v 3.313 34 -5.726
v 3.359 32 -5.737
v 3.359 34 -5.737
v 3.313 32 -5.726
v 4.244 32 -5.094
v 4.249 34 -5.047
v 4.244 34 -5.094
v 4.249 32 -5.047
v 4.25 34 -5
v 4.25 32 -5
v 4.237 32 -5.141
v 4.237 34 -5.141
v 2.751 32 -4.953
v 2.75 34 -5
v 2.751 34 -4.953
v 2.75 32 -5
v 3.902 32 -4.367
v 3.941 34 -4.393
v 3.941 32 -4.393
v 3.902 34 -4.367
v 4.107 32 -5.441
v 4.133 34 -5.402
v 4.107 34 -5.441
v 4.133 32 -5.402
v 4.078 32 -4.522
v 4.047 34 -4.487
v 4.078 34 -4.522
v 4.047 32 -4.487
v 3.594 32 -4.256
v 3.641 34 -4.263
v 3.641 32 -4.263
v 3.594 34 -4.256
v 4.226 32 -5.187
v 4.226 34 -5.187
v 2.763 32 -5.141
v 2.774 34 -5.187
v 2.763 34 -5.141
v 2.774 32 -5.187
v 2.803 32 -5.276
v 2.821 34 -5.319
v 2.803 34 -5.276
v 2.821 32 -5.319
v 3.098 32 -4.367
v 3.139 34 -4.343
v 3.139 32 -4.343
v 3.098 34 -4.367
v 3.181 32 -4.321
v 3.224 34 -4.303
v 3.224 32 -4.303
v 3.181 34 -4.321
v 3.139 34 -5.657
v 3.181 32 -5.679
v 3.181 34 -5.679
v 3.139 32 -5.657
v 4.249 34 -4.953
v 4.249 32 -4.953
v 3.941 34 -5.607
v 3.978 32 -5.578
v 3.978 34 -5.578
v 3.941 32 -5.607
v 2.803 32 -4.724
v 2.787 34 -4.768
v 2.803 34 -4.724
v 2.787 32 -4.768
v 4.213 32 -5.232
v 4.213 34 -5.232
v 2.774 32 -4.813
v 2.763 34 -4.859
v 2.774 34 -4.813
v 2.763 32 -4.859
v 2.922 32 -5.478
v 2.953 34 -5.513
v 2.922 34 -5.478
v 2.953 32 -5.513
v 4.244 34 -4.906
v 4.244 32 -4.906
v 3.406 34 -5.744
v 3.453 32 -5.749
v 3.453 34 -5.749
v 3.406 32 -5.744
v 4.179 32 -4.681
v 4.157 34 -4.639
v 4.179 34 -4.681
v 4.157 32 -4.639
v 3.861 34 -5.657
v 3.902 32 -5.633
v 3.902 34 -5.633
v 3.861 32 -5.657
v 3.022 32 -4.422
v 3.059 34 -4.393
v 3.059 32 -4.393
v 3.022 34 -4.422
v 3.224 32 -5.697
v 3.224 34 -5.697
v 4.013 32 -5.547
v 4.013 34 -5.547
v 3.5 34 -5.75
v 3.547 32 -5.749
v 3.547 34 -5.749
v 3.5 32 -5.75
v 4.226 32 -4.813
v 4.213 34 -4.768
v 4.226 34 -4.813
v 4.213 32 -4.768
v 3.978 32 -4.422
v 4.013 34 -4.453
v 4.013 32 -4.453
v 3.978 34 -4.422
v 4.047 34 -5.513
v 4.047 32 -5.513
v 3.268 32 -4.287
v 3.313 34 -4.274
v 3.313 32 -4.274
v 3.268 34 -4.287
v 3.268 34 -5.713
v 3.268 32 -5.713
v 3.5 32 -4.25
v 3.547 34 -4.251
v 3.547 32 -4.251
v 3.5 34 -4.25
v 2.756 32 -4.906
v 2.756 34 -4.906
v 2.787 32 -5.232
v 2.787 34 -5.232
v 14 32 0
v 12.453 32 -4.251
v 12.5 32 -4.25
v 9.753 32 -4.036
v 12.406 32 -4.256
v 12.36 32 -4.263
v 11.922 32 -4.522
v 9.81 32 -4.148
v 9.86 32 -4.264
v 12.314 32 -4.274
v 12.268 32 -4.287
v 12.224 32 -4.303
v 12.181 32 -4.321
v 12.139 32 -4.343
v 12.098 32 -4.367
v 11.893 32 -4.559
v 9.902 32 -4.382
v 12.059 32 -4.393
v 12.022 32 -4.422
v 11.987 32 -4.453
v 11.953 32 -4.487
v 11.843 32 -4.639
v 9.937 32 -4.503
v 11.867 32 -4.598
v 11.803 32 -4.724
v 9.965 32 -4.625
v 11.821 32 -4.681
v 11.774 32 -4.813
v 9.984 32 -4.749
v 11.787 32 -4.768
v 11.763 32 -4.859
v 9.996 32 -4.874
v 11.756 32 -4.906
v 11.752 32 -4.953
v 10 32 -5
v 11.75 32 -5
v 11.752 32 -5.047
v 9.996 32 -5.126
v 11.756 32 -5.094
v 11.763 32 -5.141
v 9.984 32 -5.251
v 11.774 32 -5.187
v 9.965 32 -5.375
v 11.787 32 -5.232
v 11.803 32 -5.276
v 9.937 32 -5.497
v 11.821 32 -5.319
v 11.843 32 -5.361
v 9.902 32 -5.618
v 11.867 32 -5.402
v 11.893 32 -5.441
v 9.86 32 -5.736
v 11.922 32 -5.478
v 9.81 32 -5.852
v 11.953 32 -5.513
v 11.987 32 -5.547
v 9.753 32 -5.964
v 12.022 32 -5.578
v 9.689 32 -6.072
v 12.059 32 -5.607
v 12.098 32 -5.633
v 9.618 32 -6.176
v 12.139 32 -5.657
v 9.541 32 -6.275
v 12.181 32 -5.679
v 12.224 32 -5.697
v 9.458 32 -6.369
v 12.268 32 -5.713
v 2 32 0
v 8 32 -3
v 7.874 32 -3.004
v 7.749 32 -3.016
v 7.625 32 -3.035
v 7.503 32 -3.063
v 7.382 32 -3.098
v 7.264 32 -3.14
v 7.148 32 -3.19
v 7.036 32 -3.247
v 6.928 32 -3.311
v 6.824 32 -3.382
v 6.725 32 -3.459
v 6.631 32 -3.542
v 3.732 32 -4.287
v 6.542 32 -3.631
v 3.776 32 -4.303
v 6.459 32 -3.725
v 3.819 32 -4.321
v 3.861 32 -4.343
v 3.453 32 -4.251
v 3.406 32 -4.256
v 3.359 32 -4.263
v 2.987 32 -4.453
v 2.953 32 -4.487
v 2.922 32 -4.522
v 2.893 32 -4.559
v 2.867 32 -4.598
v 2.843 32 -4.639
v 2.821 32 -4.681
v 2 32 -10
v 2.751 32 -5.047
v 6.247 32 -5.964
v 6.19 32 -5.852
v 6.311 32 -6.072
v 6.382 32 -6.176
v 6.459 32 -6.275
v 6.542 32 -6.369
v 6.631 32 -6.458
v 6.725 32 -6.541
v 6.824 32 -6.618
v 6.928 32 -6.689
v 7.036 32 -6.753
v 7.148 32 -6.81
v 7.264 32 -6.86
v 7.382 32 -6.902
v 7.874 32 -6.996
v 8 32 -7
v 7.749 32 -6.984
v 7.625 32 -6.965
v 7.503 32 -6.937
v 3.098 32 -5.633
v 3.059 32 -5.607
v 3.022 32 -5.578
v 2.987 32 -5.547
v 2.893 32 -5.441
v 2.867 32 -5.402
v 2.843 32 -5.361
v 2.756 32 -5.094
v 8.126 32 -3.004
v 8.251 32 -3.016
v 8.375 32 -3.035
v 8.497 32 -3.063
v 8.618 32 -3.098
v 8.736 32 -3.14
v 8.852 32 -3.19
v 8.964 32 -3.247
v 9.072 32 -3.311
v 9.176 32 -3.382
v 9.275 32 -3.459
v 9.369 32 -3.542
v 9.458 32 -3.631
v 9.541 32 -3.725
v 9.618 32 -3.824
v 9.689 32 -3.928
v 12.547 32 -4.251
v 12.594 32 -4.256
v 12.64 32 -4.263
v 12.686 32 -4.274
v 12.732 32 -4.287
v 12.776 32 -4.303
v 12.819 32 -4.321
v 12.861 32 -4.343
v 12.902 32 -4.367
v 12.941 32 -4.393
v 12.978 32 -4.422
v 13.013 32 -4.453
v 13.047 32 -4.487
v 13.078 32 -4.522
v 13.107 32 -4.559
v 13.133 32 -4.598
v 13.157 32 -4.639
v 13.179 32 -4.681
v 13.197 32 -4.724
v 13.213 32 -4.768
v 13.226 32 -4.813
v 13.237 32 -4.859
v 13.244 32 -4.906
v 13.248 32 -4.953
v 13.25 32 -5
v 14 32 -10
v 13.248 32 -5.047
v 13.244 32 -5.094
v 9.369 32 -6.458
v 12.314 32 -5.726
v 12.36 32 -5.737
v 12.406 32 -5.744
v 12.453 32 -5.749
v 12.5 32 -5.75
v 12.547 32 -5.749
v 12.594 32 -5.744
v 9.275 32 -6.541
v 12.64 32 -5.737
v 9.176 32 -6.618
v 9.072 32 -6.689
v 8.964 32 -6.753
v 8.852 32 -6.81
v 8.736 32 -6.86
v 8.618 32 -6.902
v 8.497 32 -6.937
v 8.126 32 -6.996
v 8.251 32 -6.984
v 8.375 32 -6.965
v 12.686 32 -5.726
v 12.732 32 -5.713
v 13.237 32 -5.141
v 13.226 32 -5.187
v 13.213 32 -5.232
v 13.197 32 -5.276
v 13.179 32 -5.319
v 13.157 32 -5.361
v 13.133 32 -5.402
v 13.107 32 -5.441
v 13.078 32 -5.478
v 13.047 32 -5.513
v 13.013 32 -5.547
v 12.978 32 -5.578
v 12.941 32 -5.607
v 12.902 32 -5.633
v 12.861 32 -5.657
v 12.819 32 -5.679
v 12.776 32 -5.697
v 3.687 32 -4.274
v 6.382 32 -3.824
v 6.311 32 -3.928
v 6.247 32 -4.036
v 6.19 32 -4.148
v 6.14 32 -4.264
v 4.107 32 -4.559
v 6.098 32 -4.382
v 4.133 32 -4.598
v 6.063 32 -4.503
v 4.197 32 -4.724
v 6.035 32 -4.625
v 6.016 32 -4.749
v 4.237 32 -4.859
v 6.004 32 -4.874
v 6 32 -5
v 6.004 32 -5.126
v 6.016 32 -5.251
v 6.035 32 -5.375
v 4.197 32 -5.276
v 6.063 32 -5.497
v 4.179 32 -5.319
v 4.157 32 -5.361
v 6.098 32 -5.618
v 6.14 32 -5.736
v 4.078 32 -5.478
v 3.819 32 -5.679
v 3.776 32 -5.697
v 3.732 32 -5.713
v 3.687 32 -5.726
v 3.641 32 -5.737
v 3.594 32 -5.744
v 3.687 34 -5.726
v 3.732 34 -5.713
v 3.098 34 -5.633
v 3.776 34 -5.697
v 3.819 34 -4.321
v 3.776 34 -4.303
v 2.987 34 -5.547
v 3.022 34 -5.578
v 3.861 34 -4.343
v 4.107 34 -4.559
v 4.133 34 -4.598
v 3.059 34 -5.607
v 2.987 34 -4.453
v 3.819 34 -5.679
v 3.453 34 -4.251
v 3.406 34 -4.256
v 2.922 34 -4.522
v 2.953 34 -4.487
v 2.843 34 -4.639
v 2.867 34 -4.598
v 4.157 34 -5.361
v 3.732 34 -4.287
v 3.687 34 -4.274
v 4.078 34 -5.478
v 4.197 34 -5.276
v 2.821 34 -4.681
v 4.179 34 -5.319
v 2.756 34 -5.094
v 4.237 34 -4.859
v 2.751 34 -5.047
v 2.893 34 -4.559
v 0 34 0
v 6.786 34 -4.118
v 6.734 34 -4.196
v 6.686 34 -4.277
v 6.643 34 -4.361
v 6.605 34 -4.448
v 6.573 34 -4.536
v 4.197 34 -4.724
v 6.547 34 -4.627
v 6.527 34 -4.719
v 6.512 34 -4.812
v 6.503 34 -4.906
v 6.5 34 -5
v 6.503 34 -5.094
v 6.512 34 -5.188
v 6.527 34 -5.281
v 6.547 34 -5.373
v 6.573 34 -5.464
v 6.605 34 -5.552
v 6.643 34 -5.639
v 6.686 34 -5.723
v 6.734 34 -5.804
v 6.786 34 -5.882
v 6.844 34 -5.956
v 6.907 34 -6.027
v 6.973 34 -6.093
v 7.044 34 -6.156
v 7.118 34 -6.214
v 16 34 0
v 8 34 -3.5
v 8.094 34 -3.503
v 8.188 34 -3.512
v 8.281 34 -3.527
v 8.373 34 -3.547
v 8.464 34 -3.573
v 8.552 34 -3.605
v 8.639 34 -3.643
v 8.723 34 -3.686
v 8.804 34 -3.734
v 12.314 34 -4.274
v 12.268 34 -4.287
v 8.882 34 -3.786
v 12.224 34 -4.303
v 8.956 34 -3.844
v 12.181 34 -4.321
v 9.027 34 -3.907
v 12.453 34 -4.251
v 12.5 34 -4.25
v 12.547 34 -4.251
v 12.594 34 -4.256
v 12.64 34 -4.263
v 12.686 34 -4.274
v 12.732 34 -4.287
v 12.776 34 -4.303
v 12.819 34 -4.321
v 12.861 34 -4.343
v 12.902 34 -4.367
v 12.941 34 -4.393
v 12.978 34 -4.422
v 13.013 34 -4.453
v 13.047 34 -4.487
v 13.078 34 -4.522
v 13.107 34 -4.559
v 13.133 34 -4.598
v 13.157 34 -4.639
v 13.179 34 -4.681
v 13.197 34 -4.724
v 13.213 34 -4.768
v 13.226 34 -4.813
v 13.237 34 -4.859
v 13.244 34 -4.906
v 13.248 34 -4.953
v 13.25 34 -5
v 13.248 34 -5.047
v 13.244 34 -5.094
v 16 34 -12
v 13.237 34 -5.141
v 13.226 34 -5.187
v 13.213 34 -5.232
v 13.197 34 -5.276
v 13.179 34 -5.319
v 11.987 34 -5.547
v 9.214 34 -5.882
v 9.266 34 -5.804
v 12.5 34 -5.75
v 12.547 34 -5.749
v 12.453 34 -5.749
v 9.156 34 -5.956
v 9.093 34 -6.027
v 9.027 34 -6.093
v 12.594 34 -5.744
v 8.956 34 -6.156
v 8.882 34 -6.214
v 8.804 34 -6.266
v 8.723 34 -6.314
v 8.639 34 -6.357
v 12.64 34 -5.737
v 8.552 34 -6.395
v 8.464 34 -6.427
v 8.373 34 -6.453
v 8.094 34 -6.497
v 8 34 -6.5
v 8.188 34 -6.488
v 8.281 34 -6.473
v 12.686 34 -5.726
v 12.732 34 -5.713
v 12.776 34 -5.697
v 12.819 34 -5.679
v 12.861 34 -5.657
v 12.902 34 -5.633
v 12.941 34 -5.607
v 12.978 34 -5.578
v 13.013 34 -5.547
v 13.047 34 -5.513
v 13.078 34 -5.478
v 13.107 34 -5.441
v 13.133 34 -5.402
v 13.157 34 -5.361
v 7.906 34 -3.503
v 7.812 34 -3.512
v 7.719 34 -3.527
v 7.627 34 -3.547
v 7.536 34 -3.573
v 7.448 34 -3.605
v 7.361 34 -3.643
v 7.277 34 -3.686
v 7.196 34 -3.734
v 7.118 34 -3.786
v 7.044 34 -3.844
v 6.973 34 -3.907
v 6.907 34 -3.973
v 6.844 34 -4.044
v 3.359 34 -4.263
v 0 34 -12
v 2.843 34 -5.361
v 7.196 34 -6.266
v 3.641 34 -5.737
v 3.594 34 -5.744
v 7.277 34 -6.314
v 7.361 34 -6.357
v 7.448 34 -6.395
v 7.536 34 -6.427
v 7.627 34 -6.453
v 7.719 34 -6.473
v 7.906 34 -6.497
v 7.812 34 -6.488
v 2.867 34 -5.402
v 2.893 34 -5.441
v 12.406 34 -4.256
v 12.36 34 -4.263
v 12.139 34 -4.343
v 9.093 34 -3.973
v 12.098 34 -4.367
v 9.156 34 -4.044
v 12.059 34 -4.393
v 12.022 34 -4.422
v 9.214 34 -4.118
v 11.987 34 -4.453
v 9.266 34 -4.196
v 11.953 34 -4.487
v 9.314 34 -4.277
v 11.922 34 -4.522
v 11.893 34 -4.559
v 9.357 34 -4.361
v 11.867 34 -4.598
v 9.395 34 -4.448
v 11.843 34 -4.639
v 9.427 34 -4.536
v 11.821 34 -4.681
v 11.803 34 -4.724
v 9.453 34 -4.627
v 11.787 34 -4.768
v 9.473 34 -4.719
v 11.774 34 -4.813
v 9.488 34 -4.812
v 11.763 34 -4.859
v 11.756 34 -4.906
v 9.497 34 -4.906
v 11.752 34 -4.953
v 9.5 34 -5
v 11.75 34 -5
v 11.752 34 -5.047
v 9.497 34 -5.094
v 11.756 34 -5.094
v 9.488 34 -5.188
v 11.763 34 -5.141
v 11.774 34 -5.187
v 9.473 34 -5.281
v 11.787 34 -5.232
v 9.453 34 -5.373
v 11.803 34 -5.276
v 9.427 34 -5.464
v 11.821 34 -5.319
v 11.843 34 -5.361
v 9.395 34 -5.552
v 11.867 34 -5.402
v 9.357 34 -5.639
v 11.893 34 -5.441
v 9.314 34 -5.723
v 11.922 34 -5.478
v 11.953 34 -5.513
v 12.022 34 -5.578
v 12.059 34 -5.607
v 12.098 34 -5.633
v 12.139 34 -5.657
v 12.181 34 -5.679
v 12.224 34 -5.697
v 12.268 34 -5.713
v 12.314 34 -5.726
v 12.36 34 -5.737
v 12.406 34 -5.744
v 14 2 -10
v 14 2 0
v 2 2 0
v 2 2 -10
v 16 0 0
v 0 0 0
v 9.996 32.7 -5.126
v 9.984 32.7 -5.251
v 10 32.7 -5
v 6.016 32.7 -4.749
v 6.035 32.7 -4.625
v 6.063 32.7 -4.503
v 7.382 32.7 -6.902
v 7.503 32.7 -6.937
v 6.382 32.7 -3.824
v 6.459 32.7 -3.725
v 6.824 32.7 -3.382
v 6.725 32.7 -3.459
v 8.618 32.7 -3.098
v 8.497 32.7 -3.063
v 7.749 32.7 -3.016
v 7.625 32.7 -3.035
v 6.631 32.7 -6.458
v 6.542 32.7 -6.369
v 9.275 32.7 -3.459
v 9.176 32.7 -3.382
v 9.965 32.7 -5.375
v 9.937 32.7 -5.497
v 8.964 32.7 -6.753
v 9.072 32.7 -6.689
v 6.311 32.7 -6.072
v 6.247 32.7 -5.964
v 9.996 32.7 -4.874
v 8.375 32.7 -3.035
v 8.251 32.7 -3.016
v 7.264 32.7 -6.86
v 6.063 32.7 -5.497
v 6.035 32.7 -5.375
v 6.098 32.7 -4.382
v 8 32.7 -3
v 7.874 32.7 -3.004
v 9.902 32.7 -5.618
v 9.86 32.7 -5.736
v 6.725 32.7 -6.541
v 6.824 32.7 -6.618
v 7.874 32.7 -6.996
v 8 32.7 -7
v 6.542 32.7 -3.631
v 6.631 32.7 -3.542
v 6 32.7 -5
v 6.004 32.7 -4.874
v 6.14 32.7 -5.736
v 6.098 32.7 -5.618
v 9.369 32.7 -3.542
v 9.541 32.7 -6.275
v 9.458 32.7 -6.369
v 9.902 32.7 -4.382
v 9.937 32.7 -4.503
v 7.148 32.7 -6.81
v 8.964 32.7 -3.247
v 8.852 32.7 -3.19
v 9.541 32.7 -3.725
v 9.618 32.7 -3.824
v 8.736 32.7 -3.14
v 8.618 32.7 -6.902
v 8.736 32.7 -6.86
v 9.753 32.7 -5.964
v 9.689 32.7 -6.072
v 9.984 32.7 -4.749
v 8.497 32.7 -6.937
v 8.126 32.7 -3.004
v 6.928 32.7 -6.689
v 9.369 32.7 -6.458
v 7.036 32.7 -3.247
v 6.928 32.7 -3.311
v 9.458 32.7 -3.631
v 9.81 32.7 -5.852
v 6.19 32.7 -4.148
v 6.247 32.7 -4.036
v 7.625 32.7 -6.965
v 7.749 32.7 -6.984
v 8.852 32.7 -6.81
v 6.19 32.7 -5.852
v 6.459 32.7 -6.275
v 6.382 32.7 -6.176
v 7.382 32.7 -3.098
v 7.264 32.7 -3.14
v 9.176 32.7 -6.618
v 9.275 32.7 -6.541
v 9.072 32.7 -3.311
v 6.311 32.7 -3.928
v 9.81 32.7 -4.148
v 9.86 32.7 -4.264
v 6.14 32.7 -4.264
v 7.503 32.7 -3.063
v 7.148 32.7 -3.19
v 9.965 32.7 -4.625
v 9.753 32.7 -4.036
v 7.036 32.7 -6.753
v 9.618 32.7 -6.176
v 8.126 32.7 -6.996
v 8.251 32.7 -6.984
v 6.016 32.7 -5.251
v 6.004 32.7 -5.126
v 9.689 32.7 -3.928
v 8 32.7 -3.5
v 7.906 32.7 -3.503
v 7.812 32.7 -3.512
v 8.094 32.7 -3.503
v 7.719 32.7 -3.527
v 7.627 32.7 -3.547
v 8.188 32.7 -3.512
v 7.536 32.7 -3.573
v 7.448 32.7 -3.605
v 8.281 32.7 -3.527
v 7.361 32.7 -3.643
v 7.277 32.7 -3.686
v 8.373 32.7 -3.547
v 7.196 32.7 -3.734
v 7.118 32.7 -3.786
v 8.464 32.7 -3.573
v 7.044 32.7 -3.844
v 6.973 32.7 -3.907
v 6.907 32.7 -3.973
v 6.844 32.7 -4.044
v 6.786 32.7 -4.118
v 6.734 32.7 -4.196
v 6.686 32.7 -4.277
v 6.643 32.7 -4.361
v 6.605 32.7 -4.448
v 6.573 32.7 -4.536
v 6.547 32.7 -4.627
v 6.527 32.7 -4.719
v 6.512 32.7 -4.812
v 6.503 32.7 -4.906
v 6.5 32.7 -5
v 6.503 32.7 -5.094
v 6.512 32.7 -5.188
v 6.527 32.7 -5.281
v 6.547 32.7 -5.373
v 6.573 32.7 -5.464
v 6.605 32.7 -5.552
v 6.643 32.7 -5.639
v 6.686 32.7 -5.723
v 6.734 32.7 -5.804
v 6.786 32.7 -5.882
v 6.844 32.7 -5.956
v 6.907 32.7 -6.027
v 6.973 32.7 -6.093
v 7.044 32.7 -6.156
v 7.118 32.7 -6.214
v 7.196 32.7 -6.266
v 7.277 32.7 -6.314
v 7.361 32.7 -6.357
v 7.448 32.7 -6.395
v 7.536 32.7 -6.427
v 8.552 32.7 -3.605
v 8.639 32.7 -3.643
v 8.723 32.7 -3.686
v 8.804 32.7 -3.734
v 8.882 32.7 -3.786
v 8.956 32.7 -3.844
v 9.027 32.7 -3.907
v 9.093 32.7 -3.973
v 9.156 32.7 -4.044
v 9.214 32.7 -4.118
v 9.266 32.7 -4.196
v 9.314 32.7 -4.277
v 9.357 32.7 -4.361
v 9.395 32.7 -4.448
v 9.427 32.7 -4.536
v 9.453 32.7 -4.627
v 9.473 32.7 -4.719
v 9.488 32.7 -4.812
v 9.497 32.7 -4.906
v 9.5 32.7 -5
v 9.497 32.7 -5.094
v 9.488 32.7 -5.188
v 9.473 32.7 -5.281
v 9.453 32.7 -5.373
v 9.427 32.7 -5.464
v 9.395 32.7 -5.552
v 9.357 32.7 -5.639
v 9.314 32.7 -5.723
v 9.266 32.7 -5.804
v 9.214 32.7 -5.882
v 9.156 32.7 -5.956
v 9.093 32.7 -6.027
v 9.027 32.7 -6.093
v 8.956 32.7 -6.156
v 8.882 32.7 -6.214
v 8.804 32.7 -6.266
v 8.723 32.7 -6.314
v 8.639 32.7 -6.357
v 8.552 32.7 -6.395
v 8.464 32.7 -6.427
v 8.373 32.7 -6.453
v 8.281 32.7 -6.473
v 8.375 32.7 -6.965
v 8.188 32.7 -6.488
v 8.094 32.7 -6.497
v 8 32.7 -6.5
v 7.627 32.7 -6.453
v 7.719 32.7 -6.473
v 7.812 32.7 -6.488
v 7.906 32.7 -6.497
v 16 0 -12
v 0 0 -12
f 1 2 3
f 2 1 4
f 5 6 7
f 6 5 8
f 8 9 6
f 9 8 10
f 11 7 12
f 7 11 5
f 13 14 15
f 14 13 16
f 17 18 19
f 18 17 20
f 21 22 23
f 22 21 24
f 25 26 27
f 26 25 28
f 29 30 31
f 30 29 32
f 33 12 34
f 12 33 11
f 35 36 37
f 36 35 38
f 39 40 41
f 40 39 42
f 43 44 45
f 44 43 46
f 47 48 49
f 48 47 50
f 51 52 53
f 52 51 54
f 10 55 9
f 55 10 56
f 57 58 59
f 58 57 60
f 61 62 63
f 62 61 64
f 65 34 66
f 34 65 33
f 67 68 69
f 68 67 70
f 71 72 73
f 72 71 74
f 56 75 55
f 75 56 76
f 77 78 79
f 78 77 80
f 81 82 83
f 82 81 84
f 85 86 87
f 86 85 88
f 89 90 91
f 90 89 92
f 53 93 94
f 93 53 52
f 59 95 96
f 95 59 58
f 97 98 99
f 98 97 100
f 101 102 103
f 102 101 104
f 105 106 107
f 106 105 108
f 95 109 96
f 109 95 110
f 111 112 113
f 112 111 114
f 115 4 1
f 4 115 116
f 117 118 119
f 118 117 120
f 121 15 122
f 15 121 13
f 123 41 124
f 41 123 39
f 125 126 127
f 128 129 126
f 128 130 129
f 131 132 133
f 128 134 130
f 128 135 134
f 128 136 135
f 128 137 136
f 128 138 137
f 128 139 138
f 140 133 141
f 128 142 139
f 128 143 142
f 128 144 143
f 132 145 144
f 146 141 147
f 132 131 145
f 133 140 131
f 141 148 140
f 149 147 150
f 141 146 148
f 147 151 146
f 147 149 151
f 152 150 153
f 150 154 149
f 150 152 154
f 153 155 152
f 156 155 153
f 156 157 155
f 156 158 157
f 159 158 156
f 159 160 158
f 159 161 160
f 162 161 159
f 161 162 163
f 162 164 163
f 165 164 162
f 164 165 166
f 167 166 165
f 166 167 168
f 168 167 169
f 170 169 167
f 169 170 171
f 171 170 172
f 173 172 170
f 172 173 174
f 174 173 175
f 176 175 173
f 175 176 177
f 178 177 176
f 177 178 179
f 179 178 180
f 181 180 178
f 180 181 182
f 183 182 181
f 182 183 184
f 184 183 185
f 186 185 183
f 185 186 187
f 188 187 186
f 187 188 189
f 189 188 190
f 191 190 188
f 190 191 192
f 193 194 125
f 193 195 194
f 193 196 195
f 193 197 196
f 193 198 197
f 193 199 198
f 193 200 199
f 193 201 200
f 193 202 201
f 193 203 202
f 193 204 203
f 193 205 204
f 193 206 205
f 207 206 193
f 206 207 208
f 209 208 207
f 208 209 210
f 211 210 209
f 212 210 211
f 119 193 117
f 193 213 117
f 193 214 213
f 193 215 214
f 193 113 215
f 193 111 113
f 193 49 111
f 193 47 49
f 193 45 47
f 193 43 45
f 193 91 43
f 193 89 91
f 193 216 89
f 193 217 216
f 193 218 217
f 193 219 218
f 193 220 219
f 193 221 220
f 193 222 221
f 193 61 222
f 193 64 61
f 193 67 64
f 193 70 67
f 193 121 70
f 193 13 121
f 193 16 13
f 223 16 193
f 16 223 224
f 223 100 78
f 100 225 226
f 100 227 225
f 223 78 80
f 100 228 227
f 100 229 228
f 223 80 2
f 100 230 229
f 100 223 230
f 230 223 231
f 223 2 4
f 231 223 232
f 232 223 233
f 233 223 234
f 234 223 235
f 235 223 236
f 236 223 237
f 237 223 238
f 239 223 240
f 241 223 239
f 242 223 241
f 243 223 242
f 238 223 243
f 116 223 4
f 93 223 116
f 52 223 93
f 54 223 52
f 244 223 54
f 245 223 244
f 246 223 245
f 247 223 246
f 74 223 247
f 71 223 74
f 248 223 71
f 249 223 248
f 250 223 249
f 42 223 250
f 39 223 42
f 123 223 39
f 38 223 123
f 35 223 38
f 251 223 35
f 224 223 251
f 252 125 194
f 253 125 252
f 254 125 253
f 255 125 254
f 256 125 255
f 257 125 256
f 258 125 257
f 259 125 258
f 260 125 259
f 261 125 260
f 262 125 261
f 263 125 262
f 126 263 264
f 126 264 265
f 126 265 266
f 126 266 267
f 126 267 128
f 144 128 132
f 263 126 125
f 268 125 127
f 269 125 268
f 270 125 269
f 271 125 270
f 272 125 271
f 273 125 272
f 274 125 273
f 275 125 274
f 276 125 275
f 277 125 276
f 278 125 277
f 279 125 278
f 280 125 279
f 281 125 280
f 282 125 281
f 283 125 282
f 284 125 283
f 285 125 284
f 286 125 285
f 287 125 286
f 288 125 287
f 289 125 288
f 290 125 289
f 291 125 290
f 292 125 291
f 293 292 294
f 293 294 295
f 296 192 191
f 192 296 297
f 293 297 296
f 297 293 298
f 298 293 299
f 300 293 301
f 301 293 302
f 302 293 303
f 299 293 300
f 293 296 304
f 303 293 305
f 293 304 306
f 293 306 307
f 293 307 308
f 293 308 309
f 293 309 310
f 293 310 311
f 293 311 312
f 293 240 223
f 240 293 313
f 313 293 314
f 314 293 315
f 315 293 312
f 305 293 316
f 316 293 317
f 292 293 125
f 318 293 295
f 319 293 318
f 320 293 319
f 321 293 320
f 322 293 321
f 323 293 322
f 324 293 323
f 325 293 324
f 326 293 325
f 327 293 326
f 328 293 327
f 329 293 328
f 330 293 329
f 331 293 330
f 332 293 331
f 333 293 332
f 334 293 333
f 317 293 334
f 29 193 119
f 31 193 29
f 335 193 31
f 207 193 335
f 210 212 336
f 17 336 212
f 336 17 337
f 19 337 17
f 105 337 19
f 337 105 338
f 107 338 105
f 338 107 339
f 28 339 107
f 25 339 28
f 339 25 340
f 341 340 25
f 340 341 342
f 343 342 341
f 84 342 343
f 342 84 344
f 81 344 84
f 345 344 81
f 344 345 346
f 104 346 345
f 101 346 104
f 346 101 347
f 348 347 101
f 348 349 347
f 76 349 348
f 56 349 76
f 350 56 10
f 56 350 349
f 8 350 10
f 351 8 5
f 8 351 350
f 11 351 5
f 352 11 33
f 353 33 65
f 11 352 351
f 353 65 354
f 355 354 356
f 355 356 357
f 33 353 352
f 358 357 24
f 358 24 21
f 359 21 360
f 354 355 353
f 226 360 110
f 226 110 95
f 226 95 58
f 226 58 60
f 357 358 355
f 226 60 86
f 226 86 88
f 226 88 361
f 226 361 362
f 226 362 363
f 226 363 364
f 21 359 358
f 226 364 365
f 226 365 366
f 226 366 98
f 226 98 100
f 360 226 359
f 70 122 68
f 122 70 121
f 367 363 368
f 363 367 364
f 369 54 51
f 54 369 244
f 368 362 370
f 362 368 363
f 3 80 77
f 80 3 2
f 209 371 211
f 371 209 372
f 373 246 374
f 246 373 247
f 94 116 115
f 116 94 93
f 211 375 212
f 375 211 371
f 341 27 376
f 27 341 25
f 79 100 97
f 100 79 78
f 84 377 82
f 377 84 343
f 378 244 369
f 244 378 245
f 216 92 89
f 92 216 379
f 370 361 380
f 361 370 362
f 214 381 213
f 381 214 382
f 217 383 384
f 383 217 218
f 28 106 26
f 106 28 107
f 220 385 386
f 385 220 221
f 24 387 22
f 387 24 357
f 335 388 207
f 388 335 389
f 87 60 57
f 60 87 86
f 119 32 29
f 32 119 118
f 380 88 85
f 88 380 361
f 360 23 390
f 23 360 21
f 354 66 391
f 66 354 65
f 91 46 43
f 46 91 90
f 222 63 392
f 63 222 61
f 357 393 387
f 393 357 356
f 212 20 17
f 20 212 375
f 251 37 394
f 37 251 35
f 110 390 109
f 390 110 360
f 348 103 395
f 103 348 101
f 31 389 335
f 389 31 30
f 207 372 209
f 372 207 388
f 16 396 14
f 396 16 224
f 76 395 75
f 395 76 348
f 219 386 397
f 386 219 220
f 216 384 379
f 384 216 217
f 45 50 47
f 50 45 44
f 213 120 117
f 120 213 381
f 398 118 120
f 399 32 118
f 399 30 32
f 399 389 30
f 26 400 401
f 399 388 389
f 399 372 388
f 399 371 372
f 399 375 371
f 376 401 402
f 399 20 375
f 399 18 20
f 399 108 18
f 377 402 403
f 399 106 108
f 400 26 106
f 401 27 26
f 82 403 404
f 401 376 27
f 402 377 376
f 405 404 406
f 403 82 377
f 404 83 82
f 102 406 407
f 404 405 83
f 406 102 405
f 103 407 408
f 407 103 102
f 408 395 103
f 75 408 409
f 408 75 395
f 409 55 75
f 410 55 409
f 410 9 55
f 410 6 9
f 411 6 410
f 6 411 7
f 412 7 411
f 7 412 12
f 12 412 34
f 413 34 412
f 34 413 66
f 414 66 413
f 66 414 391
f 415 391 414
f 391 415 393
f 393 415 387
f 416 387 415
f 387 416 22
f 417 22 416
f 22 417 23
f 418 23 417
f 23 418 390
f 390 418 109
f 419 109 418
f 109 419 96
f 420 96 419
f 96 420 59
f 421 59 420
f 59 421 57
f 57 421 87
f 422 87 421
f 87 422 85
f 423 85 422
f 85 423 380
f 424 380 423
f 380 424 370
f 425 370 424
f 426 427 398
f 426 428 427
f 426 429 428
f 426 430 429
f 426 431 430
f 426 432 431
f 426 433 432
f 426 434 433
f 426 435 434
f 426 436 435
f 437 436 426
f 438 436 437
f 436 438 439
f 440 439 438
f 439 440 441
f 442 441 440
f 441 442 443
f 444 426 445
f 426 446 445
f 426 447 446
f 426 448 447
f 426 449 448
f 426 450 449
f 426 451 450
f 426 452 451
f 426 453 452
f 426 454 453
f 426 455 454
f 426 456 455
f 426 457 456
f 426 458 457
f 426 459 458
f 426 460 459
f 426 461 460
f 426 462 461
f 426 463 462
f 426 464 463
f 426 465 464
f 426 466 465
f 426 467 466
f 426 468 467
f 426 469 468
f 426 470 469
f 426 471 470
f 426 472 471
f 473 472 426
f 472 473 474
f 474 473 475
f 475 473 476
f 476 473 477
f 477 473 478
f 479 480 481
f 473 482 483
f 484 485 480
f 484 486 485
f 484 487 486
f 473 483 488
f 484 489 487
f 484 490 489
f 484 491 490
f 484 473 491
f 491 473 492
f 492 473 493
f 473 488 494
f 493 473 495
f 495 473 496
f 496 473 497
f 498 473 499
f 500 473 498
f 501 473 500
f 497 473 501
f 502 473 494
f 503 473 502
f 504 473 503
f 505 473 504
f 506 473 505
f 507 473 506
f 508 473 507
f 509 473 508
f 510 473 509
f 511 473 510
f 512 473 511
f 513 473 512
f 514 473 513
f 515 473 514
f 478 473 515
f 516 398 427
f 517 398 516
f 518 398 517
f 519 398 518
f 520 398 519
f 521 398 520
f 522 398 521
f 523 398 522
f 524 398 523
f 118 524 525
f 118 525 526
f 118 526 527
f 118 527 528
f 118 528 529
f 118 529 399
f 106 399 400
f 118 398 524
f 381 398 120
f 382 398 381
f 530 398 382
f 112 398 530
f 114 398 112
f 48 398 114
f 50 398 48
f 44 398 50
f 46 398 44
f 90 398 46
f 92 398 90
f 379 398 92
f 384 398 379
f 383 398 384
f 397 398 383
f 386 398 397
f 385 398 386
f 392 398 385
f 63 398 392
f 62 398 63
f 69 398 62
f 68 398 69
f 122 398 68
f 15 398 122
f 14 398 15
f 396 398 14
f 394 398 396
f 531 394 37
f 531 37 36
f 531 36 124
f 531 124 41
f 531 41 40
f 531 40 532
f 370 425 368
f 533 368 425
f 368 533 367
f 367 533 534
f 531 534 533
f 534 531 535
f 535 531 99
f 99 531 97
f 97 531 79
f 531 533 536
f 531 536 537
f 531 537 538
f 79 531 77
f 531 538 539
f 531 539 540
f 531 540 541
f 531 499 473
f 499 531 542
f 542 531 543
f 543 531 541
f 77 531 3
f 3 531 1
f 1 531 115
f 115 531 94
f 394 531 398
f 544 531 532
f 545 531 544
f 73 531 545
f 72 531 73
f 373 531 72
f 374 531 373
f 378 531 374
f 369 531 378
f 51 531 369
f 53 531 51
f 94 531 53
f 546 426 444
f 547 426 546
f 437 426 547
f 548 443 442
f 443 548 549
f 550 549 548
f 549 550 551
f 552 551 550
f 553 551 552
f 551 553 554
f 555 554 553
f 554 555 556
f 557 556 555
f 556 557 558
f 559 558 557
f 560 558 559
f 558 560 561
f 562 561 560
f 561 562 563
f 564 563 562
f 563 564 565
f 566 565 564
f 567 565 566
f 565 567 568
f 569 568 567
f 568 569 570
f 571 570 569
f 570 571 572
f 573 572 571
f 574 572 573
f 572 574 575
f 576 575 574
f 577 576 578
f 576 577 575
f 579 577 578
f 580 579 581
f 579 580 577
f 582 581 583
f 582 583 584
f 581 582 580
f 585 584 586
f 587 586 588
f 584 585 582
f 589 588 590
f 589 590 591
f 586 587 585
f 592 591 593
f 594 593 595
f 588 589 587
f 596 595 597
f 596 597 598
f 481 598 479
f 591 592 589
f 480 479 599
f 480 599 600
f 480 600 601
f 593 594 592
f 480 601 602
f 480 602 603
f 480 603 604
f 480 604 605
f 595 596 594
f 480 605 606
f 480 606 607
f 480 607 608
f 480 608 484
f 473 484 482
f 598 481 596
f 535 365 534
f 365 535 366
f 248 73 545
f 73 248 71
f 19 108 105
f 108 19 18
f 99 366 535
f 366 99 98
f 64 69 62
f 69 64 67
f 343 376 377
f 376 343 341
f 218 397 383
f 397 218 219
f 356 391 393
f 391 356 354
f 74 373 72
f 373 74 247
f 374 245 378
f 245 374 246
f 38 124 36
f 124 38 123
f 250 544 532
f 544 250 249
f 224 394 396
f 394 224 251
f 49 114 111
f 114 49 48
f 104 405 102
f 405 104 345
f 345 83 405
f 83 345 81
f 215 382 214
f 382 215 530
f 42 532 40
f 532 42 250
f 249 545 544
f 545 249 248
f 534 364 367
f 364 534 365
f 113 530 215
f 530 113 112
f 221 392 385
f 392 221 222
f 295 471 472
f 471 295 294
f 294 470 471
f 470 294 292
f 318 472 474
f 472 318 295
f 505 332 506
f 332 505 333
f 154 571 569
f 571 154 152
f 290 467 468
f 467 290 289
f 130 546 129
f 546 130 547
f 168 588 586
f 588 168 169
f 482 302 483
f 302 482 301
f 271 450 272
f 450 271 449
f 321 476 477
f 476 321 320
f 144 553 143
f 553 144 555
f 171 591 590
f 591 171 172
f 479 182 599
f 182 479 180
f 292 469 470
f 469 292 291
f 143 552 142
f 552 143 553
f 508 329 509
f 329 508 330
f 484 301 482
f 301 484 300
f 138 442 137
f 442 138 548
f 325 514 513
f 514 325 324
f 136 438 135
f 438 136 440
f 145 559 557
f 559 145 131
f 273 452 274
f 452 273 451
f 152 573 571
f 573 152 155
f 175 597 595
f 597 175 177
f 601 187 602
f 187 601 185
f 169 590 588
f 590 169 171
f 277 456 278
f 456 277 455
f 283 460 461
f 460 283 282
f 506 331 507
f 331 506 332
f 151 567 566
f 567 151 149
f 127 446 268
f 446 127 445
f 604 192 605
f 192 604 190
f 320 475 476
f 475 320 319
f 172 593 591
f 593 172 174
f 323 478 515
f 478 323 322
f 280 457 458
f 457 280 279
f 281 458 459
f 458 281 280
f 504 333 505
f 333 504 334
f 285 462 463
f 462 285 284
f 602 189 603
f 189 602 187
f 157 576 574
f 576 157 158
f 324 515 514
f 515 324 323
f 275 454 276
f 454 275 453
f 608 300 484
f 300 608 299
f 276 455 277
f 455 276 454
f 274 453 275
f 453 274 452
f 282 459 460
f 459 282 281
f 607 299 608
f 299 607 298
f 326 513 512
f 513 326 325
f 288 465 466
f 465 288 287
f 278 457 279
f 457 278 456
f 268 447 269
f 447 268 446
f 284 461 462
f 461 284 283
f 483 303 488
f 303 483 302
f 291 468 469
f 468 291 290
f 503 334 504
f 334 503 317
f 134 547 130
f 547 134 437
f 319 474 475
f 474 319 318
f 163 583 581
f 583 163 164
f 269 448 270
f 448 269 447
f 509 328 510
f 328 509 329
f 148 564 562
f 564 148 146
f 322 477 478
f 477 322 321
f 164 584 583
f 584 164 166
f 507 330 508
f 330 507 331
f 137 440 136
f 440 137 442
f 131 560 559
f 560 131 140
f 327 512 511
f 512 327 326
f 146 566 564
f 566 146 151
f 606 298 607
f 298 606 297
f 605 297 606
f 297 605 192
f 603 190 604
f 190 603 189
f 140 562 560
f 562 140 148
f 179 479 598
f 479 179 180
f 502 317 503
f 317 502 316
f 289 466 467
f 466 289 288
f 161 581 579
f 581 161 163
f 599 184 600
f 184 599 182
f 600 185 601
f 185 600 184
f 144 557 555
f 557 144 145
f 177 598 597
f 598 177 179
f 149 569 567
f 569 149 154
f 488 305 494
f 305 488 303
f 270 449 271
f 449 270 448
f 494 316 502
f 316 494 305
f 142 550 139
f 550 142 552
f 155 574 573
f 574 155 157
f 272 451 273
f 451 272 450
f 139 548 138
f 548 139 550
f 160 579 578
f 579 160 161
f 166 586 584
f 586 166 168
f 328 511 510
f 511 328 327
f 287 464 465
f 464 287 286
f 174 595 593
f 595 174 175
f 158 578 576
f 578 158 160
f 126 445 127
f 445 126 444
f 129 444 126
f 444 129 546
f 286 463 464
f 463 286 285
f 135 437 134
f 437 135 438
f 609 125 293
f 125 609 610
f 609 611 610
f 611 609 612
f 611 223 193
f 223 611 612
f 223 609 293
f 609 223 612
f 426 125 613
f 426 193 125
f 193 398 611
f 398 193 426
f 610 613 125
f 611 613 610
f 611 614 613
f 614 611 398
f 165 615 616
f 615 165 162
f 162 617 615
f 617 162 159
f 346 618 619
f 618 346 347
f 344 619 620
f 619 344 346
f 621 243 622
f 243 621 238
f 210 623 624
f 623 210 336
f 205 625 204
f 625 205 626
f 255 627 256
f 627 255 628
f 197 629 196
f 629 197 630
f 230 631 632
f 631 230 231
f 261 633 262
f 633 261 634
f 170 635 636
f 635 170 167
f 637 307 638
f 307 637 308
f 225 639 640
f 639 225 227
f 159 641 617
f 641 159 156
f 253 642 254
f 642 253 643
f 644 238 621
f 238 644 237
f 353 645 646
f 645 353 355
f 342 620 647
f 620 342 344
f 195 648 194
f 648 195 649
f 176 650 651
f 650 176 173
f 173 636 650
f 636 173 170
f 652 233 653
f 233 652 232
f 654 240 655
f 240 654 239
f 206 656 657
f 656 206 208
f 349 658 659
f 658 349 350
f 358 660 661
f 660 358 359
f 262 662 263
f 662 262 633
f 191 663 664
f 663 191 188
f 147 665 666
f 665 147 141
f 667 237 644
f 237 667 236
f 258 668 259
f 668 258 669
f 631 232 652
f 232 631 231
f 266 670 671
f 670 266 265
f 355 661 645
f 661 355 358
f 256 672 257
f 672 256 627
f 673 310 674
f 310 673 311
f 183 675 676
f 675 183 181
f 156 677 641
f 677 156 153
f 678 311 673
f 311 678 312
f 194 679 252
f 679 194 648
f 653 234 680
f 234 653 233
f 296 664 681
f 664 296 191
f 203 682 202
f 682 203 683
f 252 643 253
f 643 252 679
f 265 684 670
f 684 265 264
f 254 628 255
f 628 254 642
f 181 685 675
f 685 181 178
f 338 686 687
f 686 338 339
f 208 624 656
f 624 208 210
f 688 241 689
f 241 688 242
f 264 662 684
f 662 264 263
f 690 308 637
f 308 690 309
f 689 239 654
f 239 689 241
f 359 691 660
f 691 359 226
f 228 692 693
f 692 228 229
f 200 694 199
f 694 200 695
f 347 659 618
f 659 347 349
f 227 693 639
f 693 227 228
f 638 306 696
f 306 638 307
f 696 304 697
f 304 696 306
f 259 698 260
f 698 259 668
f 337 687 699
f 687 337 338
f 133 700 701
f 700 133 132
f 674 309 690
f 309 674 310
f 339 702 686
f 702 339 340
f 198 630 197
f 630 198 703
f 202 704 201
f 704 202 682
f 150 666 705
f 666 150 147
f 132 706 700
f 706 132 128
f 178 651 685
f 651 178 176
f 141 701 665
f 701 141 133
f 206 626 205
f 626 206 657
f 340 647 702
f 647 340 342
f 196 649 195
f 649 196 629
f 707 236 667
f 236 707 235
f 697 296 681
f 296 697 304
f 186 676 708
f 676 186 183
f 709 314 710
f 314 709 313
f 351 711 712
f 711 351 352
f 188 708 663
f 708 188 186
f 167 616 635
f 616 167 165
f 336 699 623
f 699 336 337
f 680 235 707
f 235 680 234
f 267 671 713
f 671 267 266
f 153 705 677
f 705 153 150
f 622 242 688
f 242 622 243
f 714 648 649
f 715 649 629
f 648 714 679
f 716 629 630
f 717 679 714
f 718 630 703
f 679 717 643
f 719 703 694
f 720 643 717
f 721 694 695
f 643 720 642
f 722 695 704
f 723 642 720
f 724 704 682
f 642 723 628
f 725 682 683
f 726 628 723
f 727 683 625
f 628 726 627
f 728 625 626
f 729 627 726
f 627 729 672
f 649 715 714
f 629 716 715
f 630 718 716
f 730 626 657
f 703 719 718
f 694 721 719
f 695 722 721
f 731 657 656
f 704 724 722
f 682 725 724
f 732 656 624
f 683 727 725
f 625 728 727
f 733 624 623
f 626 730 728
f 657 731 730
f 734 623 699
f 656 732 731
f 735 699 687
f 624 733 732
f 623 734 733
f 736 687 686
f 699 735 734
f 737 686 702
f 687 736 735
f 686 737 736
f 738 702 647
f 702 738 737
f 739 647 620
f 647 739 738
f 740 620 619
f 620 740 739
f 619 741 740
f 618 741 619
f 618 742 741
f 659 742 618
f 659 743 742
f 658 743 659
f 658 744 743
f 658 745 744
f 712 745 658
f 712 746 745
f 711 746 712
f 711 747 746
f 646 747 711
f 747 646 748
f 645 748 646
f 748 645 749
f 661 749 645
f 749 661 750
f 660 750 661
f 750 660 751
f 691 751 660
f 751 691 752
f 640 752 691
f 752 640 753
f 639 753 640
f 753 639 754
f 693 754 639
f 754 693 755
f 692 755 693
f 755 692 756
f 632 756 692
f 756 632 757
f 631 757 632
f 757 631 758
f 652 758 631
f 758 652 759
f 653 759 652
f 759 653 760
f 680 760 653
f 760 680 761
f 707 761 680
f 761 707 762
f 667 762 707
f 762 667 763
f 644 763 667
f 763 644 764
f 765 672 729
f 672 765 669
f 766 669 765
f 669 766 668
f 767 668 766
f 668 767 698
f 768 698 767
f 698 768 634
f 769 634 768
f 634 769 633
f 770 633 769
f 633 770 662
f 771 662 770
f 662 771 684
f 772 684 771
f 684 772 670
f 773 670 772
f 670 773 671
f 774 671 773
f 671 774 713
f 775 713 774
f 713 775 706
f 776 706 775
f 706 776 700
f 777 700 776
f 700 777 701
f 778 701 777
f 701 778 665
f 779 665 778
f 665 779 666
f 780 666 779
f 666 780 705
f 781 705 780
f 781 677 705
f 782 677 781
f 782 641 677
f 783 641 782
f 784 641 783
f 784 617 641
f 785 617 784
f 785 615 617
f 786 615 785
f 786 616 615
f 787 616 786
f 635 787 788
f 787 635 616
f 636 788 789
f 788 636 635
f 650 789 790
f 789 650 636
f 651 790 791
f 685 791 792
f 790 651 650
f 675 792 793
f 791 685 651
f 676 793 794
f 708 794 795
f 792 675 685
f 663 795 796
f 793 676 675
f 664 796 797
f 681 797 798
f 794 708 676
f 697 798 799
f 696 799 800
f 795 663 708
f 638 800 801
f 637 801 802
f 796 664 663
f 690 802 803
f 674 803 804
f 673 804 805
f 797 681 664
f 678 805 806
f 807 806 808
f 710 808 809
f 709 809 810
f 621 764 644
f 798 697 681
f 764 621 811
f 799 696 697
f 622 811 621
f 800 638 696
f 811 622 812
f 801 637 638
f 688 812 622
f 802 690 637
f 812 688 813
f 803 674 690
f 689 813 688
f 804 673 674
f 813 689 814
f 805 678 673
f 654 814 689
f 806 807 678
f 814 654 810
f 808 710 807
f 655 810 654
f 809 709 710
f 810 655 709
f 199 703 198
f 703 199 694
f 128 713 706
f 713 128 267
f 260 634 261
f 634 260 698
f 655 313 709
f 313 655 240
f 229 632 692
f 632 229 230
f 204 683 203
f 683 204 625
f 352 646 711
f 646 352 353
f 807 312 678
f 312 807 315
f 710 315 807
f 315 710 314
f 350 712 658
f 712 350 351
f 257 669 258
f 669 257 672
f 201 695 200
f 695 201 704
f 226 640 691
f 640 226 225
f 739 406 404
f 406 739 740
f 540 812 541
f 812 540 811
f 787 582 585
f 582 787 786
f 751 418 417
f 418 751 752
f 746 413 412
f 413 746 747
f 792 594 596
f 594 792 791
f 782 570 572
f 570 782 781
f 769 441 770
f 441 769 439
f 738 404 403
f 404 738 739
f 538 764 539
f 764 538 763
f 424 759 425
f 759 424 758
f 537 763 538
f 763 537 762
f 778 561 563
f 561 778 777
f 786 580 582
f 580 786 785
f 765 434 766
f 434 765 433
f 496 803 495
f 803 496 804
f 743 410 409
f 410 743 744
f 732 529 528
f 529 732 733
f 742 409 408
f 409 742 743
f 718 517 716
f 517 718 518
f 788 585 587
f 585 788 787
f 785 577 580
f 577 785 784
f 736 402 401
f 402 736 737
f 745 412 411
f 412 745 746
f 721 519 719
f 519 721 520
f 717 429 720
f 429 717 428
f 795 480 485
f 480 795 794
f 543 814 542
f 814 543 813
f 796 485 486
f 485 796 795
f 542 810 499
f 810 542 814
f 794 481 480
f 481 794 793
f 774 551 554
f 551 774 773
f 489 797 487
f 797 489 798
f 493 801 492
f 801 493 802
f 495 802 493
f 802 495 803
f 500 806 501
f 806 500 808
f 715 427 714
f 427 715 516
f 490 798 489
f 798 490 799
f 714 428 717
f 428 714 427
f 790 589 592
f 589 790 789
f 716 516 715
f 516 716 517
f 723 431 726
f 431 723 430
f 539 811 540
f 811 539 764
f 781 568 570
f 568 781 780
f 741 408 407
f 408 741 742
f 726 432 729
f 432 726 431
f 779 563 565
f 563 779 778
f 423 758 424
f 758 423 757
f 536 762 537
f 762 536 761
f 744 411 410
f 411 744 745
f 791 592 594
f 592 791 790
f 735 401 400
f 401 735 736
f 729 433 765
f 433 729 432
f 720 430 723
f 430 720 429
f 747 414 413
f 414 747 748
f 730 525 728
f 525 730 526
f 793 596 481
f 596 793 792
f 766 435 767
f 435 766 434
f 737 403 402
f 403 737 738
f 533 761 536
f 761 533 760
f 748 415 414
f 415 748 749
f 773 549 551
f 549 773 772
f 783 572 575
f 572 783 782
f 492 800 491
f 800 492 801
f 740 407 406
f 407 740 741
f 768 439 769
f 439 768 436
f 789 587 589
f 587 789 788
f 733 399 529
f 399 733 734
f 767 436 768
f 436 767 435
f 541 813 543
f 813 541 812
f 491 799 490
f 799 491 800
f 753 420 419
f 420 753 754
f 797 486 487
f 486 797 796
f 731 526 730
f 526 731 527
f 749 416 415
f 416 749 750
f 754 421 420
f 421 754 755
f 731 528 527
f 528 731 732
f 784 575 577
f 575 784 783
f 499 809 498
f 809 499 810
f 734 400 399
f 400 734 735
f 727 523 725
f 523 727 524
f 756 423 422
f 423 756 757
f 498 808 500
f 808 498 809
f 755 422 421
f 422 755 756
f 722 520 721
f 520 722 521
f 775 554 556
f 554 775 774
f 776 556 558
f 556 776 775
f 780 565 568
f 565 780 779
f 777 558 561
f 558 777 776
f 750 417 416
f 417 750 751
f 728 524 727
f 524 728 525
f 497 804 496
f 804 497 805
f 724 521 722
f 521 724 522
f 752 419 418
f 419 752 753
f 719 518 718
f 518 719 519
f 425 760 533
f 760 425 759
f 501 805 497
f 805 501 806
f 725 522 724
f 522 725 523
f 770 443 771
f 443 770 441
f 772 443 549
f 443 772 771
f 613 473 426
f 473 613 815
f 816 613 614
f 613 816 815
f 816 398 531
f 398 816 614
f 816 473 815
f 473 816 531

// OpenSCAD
motor_y = 10;
motor_x = 12;
screw_delta_x = 9;
screw_y = motor_y/2;
screw_z = 5;
screw_diameter = 1.5;
motor_z = 30;
motor_gear_diameter = 3;
motor_gear_z = 7.3;
motor_gear_base_diameter = 4;
motor_gear_base_z = 0.7;
motor_gear_nook_depth = 0.7;
$fn = 100;

wall_width = 2;
module motor() {
	difference() {
		cube([motor_x, motor_y, motor_z]);
		//translate([(motor_x-screw_delta_x)/2, screw_y, motor_z-screw_z]){
		//	cylinder(d=screw_diameter, h=screw_z);
		//	translate([screw_delta_x, 0, 0])
		//		cylinder(d=screw_diameter, h=screw_z);
		//}
	}
	translate([motor_x/2, motor_y/2, motor_z])
		cylinder(d=motor_gear_base_diameter, h=motor_gear_base_z);
	translate([motor_x/2, motor_y/2, motor_z+motor_gear_base_z])
		difference() {
			cylinder(d=motor_gear_diameter, h=motor_gear_z);
			//translate([motor_gear_diameter/2-motor_gear_nook_depth, -motor_gear_diameter/2, 0])
				//cube([motor_gear_nook_depth, motor_gear_diameter, motor_gear_z]);
		}
}

rotate([-90, 0, 0])
color("white")difference() {
	cube([motor_x+2*wall_width, motor_y+wall_width, motor_z+2*wall_width]);
	color("lightgray")translate([wall_width, 0, wall_width])motor();
	translate([wall_width, 0, motor_z+wall_width]){
		translate([(motor_x-screw_delta_x)/2, screw_y, 0]) {
			cylinder(d=screw_diameter, h=wall_width);
			translate([screw_delta_x, 0, 0])
				cylinder(d=screw_diameter, h=wall_width);
		}
	}
}
